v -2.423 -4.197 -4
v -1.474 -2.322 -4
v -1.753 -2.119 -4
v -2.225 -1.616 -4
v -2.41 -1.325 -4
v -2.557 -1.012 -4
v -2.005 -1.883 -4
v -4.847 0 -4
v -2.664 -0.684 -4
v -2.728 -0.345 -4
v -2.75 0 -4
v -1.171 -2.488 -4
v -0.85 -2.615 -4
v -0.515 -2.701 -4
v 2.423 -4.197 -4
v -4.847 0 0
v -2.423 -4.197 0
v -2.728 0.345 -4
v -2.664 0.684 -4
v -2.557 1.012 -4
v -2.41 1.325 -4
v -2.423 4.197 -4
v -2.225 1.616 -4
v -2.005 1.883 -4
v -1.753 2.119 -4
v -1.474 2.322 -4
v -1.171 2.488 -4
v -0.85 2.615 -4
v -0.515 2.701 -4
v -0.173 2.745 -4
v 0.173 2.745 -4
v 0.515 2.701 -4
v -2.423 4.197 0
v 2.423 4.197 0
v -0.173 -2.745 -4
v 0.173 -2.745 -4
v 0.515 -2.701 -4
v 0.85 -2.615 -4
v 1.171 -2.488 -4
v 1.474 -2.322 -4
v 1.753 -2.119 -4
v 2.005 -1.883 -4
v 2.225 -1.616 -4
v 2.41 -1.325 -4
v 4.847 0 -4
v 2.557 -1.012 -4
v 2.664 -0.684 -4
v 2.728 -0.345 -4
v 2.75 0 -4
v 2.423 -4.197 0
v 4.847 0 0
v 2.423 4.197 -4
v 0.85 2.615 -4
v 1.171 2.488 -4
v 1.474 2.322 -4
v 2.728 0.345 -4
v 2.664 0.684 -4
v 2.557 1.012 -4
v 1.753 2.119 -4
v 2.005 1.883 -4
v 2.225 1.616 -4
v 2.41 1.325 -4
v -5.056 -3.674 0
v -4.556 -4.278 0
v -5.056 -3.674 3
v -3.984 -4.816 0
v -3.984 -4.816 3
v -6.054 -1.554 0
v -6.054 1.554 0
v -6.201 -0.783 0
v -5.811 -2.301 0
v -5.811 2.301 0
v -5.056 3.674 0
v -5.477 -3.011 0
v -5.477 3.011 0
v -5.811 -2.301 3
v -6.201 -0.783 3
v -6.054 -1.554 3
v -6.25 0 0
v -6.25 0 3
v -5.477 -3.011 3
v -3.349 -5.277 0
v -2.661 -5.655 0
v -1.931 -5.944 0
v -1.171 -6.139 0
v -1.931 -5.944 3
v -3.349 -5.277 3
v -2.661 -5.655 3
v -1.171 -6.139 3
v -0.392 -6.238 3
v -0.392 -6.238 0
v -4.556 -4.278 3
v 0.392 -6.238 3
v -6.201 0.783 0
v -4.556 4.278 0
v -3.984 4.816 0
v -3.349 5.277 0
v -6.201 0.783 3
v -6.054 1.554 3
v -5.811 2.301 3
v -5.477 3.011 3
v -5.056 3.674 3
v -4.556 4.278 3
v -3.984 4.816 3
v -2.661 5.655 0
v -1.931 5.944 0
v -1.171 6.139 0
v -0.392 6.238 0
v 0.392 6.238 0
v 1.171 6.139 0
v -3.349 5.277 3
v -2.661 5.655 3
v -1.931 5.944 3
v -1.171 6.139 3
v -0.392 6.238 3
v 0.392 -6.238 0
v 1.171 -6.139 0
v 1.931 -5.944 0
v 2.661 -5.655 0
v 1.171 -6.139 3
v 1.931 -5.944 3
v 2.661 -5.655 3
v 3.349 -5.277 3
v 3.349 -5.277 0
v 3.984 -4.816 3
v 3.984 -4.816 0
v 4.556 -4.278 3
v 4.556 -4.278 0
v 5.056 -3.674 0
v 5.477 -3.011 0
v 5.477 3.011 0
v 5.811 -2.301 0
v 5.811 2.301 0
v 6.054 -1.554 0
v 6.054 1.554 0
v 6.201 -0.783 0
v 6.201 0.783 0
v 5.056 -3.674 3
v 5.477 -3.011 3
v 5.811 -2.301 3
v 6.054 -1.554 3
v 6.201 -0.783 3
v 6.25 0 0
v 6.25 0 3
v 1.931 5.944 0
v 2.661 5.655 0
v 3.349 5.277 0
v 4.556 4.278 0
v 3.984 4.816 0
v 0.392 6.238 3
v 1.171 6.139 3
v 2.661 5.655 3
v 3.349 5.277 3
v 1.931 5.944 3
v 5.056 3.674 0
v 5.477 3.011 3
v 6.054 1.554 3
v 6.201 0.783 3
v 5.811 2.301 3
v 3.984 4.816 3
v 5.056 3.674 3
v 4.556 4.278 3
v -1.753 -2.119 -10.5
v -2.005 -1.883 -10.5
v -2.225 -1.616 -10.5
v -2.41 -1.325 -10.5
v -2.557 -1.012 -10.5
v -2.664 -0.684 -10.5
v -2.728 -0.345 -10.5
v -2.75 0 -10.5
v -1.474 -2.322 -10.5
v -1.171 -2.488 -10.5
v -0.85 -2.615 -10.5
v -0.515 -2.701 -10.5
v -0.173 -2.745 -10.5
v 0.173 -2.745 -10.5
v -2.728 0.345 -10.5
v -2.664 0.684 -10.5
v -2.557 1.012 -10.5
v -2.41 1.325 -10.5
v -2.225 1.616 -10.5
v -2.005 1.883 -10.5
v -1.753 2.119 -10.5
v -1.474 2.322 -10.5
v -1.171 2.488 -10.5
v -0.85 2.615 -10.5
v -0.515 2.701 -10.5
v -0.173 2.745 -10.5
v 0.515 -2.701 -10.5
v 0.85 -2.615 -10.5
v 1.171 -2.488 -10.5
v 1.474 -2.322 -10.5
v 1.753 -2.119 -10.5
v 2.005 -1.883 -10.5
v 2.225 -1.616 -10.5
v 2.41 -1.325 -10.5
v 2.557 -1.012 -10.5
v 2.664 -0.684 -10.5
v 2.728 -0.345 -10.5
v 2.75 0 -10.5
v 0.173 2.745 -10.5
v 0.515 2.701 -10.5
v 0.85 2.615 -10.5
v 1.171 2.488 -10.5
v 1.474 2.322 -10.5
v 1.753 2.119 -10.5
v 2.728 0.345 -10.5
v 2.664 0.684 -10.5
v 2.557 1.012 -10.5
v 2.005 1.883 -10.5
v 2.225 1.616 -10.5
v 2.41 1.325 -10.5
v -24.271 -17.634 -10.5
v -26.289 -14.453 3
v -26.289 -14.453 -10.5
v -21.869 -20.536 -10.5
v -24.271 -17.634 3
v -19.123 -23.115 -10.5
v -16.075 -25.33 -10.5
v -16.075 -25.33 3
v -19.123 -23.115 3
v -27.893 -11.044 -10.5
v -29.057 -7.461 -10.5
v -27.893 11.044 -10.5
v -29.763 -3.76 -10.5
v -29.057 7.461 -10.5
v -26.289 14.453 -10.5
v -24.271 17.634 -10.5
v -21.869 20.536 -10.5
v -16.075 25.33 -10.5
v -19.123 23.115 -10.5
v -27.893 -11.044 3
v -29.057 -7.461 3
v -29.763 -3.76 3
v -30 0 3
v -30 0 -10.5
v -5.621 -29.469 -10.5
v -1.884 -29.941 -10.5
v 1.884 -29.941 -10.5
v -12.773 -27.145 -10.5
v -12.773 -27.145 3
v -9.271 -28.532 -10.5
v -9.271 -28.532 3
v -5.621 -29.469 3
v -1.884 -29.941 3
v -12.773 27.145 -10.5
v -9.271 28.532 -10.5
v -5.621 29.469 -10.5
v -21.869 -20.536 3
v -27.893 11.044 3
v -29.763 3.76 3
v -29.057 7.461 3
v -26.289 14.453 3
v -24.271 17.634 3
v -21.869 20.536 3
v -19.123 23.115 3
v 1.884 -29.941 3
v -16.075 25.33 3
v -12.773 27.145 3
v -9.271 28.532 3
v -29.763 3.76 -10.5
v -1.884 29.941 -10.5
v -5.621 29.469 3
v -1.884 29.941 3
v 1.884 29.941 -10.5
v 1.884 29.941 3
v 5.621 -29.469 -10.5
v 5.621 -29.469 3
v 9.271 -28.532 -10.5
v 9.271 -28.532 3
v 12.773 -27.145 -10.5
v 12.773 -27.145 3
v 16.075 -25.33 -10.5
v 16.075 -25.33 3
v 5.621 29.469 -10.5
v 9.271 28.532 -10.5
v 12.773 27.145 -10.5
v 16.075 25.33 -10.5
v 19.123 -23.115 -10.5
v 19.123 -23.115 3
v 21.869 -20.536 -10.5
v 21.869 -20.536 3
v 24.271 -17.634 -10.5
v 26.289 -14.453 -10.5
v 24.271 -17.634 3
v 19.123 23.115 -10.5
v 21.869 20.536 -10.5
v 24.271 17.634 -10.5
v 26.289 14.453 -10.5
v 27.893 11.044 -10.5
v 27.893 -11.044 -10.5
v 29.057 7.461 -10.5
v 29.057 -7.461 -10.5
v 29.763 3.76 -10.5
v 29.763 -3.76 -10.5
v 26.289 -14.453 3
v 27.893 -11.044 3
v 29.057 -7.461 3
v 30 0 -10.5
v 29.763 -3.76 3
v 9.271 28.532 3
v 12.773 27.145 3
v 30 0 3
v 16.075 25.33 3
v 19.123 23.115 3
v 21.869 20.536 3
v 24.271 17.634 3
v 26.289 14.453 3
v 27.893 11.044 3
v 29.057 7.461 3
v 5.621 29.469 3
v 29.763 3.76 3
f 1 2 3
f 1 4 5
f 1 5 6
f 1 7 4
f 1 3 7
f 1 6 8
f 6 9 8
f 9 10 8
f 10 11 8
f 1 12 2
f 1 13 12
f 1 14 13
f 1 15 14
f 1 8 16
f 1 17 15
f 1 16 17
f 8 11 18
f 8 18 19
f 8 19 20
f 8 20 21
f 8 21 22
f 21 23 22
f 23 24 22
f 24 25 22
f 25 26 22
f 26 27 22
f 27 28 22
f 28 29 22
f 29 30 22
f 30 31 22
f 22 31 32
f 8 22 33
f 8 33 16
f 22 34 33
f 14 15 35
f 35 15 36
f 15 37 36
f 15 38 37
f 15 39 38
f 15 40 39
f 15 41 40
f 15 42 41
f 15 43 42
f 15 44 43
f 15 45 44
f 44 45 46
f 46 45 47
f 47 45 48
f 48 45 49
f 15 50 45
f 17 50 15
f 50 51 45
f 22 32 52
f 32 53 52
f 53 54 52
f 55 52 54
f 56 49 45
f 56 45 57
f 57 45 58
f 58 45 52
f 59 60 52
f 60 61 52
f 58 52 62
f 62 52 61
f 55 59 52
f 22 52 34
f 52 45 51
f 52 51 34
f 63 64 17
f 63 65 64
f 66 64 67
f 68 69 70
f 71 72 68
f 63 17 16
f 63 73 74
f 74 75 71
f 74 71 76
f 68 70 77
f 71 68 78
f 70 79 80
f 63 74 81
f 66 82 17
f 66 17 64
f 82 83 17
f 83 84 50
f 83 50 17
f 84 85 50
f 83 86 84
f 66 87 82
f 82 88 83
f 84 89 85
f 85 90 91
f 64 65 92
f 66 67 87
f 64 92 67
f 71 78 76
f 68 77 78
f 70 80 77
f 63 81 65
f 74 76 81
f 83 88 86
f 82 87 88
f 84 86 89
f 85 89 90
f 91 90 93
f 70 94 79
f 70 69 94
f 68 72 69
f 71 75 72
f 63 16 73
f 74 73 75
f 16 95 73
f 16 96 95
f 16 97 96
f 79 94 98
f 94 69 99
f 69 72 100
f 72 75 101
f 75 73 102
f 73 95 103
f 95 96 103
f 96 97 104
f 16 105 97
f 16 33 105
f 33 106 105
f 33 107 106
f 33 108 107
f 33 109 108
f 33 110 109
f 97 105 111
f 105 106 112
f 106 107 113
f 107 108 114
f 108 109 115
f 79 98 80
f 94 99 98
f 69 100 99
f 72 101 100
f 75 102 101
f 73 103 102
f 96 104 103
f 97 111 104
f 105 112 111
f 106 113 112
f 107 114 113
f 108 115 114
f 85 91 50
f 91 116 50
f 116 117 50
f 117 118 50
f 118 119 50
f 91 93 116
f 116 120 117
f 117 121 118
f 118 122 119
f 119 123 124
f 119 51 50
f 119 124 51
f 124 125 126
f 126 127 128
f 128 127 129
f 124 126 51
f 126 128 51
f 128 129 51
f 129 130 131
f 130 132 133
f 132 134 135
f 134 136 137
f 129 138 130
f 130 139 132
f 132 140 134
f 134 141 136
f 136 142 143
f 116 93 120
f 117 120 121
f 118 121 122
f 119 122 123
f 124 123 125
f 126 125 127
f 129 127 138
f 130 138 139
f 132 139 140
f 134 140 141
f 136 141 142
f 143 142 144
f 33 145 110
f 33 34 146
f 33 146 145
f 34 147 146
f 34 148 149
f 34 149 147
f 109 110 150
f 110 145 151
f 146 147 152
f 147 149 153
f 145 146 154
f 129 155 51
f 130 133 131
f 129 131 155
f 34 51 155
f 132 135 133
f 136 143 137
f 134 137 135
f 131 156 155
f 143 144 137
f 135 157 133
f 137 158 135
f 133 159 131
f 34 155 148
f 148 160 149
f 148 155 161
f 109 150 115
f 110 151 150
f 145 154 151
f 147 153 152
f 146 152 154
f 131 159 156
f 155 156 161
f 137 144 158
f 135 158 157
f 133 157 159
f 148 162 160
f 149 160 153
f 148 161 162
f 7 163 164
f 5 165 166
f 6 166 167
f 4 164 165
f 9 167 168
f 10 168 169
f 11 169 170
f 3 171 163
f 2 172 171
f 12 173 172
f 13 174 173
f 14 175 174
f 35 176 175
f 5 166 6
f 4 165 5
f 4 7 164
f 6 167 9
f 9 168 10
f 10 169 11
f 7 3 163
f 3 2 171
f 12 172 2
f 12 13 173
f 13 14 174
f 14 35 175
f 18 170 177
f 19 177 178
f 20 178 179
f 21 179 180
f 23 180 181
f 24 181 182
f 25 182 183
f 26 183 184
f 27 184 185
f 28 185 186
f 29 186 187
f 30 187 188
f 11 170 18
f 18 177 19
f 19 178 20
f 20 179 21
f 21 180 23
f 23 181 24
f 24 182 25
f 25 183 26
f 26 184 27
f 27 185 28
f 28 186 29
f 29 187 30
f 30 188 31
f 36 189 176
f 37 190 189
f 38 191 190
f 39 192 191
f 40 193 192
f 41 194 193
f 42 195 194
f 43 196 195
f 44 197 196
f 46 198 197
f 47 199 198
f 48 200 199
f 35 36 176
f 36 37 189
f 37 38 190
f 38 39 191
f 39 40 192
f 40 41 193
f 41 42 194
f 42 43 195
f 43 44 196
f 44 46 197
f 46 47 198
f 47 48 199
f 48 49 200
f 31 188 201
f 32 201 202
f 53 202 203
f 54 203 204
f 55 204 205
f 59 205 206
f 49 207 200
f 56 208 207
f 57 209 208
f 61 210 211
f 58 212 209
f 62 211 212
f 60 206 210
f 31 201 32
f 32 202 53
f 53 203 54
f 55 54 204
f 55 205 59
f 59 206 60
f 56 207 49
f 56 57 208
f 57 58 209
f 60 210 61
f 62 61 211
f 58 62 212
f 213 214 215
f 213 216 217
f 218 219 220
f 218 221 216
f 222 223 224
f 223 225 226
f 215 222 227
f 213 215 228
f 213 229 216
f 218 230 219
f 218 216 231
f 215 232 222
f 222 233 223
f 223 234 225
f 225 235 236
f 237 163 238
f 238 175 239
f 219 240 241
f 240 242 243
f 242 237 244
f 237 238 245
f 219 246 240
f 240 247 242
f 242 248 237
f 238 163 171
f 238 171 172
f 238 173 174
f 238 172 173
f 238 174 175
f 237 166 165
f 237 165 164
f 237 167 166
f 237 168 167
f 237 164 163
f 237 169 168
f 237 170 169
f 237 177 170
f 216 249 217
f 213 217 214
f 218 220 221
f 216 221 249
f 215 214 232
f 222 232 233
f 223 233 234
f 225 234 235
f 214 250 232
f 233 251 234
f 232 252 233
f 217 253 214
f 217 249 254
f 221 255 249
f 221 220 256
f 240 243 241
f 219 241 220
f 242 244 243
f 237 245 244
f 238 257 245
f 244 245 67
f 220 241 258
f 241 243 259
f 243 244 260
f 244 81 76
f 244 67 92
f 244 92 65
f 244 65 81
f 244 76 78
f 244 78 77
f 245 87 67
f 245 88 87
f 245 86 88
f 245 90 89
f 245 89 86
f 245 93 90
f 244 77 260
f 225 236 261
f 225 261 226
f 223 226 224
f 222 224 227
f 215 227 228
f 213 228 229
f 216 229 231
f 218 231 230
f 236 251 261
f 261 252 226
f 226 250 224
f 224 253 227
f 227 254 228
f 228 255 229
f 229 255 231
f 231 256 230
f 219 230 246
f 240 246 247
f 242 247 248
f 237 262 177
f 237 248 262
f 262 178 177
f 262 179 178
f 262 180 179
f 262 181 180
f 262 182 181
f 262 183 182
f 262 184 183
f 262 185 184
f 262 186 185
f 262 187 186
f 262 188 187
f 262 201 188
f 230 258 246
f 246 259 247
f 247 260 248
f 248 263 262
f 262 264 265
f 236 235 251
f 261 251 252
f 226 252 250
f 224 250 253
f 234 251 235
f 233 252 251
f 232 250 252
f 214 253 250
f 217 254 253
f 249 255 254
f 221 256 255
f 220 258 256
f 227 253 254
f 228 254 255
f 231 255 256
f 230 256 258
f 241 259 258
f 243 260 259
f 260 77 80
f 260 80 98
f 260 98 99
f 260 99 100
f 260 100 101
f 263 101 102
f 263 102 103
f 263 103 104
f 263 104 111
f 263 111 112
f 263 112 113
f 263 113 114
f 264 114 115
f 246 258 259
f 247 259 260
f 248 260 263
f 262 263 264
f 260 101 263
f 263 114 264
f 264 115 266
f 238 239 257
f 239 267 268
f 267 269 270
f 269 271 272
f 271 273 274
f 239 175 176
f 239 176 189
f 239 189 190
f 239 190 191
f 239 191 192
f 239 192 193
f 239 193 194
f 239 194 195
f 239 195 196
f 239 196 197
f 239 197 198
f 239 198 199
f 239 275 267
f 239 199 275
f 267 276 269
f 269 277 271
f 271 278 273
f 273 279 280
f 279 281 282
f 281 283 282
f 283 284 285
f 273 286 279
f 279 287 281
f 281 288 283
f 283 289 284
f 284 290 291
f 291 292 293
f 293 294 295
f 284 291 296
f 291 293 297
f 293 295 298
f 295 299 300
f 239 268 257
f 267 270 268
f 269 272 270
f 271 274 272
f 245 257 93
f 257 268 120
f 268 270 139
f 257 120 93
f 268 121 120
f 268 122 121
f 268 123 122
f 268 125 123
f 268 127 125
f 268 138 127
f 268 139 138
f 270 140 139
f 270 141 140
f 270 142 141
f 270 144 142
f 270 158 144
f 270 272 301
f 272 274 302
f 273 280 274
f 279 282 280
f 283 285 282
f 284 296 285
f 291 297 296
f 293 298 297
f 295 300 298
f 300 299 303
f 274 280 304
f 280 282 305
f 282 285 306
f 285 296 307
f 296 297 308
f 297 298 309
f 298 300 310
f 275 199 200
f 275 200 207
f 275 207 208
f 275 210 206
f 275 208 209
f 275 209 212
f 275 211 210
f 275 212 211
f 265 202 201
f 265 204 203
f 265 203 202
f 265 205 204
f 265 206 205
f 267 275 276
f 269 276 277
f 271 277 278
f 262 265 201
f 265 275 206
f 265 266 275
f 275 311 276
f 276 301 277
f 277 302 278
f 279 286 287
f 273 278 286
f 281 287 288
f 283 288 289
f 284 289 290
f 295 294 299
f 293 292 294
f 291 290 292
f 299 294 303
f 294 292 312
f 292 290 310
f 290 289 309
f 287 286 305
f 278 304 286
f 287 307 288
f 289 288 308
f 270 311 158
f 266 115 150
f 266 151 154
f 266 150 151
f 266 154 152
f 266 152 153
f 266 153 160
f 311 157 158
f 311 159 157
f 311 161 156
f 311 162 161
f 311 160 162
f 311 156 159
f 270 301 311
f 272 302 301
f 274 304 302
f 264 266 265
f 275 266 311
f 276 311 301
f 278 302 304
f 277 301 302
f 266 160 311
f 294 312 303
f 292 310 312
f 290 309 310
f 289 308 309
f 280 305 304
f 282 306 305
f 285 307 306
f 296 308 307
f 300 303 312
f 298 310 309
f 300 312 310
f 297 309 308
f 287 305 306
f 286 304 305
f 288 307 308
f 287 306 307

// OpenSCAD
$fn = 50;


difference() {
	union() {
		translate(v = [0, 0, -10.5000000000]) {
			cylinder(h = 13.5000000000, r = 30.0000000000);
		}
	}
	union() {
		translate(v = [0, 0, 0]) {
			rotate(a = [0, 0, 0]) {
				difference() {
					union() {
						translate(v = [0, 0, -4]) {
							linear_extrude(height = 4) {
								polygon(points = [[4.8468000000, 0.0000000000], [2.4234000000, 4.1974519271], [-2.4234000000, 4.1974519271], [-4.8468000000, 0.0000000000], [-2.4234000000, -4.1974519271], [2.4234000000, -4.1974519271]]);
							}
						}
					}
					union();
				}
			}
		}
		#cylinder(h = 3, r = 6.2500000000);
		#translate(v = [0, 0, -100.0000000000]) {
			cylinder(h = 200, r = 2.7500000000);
		}
	}
}
